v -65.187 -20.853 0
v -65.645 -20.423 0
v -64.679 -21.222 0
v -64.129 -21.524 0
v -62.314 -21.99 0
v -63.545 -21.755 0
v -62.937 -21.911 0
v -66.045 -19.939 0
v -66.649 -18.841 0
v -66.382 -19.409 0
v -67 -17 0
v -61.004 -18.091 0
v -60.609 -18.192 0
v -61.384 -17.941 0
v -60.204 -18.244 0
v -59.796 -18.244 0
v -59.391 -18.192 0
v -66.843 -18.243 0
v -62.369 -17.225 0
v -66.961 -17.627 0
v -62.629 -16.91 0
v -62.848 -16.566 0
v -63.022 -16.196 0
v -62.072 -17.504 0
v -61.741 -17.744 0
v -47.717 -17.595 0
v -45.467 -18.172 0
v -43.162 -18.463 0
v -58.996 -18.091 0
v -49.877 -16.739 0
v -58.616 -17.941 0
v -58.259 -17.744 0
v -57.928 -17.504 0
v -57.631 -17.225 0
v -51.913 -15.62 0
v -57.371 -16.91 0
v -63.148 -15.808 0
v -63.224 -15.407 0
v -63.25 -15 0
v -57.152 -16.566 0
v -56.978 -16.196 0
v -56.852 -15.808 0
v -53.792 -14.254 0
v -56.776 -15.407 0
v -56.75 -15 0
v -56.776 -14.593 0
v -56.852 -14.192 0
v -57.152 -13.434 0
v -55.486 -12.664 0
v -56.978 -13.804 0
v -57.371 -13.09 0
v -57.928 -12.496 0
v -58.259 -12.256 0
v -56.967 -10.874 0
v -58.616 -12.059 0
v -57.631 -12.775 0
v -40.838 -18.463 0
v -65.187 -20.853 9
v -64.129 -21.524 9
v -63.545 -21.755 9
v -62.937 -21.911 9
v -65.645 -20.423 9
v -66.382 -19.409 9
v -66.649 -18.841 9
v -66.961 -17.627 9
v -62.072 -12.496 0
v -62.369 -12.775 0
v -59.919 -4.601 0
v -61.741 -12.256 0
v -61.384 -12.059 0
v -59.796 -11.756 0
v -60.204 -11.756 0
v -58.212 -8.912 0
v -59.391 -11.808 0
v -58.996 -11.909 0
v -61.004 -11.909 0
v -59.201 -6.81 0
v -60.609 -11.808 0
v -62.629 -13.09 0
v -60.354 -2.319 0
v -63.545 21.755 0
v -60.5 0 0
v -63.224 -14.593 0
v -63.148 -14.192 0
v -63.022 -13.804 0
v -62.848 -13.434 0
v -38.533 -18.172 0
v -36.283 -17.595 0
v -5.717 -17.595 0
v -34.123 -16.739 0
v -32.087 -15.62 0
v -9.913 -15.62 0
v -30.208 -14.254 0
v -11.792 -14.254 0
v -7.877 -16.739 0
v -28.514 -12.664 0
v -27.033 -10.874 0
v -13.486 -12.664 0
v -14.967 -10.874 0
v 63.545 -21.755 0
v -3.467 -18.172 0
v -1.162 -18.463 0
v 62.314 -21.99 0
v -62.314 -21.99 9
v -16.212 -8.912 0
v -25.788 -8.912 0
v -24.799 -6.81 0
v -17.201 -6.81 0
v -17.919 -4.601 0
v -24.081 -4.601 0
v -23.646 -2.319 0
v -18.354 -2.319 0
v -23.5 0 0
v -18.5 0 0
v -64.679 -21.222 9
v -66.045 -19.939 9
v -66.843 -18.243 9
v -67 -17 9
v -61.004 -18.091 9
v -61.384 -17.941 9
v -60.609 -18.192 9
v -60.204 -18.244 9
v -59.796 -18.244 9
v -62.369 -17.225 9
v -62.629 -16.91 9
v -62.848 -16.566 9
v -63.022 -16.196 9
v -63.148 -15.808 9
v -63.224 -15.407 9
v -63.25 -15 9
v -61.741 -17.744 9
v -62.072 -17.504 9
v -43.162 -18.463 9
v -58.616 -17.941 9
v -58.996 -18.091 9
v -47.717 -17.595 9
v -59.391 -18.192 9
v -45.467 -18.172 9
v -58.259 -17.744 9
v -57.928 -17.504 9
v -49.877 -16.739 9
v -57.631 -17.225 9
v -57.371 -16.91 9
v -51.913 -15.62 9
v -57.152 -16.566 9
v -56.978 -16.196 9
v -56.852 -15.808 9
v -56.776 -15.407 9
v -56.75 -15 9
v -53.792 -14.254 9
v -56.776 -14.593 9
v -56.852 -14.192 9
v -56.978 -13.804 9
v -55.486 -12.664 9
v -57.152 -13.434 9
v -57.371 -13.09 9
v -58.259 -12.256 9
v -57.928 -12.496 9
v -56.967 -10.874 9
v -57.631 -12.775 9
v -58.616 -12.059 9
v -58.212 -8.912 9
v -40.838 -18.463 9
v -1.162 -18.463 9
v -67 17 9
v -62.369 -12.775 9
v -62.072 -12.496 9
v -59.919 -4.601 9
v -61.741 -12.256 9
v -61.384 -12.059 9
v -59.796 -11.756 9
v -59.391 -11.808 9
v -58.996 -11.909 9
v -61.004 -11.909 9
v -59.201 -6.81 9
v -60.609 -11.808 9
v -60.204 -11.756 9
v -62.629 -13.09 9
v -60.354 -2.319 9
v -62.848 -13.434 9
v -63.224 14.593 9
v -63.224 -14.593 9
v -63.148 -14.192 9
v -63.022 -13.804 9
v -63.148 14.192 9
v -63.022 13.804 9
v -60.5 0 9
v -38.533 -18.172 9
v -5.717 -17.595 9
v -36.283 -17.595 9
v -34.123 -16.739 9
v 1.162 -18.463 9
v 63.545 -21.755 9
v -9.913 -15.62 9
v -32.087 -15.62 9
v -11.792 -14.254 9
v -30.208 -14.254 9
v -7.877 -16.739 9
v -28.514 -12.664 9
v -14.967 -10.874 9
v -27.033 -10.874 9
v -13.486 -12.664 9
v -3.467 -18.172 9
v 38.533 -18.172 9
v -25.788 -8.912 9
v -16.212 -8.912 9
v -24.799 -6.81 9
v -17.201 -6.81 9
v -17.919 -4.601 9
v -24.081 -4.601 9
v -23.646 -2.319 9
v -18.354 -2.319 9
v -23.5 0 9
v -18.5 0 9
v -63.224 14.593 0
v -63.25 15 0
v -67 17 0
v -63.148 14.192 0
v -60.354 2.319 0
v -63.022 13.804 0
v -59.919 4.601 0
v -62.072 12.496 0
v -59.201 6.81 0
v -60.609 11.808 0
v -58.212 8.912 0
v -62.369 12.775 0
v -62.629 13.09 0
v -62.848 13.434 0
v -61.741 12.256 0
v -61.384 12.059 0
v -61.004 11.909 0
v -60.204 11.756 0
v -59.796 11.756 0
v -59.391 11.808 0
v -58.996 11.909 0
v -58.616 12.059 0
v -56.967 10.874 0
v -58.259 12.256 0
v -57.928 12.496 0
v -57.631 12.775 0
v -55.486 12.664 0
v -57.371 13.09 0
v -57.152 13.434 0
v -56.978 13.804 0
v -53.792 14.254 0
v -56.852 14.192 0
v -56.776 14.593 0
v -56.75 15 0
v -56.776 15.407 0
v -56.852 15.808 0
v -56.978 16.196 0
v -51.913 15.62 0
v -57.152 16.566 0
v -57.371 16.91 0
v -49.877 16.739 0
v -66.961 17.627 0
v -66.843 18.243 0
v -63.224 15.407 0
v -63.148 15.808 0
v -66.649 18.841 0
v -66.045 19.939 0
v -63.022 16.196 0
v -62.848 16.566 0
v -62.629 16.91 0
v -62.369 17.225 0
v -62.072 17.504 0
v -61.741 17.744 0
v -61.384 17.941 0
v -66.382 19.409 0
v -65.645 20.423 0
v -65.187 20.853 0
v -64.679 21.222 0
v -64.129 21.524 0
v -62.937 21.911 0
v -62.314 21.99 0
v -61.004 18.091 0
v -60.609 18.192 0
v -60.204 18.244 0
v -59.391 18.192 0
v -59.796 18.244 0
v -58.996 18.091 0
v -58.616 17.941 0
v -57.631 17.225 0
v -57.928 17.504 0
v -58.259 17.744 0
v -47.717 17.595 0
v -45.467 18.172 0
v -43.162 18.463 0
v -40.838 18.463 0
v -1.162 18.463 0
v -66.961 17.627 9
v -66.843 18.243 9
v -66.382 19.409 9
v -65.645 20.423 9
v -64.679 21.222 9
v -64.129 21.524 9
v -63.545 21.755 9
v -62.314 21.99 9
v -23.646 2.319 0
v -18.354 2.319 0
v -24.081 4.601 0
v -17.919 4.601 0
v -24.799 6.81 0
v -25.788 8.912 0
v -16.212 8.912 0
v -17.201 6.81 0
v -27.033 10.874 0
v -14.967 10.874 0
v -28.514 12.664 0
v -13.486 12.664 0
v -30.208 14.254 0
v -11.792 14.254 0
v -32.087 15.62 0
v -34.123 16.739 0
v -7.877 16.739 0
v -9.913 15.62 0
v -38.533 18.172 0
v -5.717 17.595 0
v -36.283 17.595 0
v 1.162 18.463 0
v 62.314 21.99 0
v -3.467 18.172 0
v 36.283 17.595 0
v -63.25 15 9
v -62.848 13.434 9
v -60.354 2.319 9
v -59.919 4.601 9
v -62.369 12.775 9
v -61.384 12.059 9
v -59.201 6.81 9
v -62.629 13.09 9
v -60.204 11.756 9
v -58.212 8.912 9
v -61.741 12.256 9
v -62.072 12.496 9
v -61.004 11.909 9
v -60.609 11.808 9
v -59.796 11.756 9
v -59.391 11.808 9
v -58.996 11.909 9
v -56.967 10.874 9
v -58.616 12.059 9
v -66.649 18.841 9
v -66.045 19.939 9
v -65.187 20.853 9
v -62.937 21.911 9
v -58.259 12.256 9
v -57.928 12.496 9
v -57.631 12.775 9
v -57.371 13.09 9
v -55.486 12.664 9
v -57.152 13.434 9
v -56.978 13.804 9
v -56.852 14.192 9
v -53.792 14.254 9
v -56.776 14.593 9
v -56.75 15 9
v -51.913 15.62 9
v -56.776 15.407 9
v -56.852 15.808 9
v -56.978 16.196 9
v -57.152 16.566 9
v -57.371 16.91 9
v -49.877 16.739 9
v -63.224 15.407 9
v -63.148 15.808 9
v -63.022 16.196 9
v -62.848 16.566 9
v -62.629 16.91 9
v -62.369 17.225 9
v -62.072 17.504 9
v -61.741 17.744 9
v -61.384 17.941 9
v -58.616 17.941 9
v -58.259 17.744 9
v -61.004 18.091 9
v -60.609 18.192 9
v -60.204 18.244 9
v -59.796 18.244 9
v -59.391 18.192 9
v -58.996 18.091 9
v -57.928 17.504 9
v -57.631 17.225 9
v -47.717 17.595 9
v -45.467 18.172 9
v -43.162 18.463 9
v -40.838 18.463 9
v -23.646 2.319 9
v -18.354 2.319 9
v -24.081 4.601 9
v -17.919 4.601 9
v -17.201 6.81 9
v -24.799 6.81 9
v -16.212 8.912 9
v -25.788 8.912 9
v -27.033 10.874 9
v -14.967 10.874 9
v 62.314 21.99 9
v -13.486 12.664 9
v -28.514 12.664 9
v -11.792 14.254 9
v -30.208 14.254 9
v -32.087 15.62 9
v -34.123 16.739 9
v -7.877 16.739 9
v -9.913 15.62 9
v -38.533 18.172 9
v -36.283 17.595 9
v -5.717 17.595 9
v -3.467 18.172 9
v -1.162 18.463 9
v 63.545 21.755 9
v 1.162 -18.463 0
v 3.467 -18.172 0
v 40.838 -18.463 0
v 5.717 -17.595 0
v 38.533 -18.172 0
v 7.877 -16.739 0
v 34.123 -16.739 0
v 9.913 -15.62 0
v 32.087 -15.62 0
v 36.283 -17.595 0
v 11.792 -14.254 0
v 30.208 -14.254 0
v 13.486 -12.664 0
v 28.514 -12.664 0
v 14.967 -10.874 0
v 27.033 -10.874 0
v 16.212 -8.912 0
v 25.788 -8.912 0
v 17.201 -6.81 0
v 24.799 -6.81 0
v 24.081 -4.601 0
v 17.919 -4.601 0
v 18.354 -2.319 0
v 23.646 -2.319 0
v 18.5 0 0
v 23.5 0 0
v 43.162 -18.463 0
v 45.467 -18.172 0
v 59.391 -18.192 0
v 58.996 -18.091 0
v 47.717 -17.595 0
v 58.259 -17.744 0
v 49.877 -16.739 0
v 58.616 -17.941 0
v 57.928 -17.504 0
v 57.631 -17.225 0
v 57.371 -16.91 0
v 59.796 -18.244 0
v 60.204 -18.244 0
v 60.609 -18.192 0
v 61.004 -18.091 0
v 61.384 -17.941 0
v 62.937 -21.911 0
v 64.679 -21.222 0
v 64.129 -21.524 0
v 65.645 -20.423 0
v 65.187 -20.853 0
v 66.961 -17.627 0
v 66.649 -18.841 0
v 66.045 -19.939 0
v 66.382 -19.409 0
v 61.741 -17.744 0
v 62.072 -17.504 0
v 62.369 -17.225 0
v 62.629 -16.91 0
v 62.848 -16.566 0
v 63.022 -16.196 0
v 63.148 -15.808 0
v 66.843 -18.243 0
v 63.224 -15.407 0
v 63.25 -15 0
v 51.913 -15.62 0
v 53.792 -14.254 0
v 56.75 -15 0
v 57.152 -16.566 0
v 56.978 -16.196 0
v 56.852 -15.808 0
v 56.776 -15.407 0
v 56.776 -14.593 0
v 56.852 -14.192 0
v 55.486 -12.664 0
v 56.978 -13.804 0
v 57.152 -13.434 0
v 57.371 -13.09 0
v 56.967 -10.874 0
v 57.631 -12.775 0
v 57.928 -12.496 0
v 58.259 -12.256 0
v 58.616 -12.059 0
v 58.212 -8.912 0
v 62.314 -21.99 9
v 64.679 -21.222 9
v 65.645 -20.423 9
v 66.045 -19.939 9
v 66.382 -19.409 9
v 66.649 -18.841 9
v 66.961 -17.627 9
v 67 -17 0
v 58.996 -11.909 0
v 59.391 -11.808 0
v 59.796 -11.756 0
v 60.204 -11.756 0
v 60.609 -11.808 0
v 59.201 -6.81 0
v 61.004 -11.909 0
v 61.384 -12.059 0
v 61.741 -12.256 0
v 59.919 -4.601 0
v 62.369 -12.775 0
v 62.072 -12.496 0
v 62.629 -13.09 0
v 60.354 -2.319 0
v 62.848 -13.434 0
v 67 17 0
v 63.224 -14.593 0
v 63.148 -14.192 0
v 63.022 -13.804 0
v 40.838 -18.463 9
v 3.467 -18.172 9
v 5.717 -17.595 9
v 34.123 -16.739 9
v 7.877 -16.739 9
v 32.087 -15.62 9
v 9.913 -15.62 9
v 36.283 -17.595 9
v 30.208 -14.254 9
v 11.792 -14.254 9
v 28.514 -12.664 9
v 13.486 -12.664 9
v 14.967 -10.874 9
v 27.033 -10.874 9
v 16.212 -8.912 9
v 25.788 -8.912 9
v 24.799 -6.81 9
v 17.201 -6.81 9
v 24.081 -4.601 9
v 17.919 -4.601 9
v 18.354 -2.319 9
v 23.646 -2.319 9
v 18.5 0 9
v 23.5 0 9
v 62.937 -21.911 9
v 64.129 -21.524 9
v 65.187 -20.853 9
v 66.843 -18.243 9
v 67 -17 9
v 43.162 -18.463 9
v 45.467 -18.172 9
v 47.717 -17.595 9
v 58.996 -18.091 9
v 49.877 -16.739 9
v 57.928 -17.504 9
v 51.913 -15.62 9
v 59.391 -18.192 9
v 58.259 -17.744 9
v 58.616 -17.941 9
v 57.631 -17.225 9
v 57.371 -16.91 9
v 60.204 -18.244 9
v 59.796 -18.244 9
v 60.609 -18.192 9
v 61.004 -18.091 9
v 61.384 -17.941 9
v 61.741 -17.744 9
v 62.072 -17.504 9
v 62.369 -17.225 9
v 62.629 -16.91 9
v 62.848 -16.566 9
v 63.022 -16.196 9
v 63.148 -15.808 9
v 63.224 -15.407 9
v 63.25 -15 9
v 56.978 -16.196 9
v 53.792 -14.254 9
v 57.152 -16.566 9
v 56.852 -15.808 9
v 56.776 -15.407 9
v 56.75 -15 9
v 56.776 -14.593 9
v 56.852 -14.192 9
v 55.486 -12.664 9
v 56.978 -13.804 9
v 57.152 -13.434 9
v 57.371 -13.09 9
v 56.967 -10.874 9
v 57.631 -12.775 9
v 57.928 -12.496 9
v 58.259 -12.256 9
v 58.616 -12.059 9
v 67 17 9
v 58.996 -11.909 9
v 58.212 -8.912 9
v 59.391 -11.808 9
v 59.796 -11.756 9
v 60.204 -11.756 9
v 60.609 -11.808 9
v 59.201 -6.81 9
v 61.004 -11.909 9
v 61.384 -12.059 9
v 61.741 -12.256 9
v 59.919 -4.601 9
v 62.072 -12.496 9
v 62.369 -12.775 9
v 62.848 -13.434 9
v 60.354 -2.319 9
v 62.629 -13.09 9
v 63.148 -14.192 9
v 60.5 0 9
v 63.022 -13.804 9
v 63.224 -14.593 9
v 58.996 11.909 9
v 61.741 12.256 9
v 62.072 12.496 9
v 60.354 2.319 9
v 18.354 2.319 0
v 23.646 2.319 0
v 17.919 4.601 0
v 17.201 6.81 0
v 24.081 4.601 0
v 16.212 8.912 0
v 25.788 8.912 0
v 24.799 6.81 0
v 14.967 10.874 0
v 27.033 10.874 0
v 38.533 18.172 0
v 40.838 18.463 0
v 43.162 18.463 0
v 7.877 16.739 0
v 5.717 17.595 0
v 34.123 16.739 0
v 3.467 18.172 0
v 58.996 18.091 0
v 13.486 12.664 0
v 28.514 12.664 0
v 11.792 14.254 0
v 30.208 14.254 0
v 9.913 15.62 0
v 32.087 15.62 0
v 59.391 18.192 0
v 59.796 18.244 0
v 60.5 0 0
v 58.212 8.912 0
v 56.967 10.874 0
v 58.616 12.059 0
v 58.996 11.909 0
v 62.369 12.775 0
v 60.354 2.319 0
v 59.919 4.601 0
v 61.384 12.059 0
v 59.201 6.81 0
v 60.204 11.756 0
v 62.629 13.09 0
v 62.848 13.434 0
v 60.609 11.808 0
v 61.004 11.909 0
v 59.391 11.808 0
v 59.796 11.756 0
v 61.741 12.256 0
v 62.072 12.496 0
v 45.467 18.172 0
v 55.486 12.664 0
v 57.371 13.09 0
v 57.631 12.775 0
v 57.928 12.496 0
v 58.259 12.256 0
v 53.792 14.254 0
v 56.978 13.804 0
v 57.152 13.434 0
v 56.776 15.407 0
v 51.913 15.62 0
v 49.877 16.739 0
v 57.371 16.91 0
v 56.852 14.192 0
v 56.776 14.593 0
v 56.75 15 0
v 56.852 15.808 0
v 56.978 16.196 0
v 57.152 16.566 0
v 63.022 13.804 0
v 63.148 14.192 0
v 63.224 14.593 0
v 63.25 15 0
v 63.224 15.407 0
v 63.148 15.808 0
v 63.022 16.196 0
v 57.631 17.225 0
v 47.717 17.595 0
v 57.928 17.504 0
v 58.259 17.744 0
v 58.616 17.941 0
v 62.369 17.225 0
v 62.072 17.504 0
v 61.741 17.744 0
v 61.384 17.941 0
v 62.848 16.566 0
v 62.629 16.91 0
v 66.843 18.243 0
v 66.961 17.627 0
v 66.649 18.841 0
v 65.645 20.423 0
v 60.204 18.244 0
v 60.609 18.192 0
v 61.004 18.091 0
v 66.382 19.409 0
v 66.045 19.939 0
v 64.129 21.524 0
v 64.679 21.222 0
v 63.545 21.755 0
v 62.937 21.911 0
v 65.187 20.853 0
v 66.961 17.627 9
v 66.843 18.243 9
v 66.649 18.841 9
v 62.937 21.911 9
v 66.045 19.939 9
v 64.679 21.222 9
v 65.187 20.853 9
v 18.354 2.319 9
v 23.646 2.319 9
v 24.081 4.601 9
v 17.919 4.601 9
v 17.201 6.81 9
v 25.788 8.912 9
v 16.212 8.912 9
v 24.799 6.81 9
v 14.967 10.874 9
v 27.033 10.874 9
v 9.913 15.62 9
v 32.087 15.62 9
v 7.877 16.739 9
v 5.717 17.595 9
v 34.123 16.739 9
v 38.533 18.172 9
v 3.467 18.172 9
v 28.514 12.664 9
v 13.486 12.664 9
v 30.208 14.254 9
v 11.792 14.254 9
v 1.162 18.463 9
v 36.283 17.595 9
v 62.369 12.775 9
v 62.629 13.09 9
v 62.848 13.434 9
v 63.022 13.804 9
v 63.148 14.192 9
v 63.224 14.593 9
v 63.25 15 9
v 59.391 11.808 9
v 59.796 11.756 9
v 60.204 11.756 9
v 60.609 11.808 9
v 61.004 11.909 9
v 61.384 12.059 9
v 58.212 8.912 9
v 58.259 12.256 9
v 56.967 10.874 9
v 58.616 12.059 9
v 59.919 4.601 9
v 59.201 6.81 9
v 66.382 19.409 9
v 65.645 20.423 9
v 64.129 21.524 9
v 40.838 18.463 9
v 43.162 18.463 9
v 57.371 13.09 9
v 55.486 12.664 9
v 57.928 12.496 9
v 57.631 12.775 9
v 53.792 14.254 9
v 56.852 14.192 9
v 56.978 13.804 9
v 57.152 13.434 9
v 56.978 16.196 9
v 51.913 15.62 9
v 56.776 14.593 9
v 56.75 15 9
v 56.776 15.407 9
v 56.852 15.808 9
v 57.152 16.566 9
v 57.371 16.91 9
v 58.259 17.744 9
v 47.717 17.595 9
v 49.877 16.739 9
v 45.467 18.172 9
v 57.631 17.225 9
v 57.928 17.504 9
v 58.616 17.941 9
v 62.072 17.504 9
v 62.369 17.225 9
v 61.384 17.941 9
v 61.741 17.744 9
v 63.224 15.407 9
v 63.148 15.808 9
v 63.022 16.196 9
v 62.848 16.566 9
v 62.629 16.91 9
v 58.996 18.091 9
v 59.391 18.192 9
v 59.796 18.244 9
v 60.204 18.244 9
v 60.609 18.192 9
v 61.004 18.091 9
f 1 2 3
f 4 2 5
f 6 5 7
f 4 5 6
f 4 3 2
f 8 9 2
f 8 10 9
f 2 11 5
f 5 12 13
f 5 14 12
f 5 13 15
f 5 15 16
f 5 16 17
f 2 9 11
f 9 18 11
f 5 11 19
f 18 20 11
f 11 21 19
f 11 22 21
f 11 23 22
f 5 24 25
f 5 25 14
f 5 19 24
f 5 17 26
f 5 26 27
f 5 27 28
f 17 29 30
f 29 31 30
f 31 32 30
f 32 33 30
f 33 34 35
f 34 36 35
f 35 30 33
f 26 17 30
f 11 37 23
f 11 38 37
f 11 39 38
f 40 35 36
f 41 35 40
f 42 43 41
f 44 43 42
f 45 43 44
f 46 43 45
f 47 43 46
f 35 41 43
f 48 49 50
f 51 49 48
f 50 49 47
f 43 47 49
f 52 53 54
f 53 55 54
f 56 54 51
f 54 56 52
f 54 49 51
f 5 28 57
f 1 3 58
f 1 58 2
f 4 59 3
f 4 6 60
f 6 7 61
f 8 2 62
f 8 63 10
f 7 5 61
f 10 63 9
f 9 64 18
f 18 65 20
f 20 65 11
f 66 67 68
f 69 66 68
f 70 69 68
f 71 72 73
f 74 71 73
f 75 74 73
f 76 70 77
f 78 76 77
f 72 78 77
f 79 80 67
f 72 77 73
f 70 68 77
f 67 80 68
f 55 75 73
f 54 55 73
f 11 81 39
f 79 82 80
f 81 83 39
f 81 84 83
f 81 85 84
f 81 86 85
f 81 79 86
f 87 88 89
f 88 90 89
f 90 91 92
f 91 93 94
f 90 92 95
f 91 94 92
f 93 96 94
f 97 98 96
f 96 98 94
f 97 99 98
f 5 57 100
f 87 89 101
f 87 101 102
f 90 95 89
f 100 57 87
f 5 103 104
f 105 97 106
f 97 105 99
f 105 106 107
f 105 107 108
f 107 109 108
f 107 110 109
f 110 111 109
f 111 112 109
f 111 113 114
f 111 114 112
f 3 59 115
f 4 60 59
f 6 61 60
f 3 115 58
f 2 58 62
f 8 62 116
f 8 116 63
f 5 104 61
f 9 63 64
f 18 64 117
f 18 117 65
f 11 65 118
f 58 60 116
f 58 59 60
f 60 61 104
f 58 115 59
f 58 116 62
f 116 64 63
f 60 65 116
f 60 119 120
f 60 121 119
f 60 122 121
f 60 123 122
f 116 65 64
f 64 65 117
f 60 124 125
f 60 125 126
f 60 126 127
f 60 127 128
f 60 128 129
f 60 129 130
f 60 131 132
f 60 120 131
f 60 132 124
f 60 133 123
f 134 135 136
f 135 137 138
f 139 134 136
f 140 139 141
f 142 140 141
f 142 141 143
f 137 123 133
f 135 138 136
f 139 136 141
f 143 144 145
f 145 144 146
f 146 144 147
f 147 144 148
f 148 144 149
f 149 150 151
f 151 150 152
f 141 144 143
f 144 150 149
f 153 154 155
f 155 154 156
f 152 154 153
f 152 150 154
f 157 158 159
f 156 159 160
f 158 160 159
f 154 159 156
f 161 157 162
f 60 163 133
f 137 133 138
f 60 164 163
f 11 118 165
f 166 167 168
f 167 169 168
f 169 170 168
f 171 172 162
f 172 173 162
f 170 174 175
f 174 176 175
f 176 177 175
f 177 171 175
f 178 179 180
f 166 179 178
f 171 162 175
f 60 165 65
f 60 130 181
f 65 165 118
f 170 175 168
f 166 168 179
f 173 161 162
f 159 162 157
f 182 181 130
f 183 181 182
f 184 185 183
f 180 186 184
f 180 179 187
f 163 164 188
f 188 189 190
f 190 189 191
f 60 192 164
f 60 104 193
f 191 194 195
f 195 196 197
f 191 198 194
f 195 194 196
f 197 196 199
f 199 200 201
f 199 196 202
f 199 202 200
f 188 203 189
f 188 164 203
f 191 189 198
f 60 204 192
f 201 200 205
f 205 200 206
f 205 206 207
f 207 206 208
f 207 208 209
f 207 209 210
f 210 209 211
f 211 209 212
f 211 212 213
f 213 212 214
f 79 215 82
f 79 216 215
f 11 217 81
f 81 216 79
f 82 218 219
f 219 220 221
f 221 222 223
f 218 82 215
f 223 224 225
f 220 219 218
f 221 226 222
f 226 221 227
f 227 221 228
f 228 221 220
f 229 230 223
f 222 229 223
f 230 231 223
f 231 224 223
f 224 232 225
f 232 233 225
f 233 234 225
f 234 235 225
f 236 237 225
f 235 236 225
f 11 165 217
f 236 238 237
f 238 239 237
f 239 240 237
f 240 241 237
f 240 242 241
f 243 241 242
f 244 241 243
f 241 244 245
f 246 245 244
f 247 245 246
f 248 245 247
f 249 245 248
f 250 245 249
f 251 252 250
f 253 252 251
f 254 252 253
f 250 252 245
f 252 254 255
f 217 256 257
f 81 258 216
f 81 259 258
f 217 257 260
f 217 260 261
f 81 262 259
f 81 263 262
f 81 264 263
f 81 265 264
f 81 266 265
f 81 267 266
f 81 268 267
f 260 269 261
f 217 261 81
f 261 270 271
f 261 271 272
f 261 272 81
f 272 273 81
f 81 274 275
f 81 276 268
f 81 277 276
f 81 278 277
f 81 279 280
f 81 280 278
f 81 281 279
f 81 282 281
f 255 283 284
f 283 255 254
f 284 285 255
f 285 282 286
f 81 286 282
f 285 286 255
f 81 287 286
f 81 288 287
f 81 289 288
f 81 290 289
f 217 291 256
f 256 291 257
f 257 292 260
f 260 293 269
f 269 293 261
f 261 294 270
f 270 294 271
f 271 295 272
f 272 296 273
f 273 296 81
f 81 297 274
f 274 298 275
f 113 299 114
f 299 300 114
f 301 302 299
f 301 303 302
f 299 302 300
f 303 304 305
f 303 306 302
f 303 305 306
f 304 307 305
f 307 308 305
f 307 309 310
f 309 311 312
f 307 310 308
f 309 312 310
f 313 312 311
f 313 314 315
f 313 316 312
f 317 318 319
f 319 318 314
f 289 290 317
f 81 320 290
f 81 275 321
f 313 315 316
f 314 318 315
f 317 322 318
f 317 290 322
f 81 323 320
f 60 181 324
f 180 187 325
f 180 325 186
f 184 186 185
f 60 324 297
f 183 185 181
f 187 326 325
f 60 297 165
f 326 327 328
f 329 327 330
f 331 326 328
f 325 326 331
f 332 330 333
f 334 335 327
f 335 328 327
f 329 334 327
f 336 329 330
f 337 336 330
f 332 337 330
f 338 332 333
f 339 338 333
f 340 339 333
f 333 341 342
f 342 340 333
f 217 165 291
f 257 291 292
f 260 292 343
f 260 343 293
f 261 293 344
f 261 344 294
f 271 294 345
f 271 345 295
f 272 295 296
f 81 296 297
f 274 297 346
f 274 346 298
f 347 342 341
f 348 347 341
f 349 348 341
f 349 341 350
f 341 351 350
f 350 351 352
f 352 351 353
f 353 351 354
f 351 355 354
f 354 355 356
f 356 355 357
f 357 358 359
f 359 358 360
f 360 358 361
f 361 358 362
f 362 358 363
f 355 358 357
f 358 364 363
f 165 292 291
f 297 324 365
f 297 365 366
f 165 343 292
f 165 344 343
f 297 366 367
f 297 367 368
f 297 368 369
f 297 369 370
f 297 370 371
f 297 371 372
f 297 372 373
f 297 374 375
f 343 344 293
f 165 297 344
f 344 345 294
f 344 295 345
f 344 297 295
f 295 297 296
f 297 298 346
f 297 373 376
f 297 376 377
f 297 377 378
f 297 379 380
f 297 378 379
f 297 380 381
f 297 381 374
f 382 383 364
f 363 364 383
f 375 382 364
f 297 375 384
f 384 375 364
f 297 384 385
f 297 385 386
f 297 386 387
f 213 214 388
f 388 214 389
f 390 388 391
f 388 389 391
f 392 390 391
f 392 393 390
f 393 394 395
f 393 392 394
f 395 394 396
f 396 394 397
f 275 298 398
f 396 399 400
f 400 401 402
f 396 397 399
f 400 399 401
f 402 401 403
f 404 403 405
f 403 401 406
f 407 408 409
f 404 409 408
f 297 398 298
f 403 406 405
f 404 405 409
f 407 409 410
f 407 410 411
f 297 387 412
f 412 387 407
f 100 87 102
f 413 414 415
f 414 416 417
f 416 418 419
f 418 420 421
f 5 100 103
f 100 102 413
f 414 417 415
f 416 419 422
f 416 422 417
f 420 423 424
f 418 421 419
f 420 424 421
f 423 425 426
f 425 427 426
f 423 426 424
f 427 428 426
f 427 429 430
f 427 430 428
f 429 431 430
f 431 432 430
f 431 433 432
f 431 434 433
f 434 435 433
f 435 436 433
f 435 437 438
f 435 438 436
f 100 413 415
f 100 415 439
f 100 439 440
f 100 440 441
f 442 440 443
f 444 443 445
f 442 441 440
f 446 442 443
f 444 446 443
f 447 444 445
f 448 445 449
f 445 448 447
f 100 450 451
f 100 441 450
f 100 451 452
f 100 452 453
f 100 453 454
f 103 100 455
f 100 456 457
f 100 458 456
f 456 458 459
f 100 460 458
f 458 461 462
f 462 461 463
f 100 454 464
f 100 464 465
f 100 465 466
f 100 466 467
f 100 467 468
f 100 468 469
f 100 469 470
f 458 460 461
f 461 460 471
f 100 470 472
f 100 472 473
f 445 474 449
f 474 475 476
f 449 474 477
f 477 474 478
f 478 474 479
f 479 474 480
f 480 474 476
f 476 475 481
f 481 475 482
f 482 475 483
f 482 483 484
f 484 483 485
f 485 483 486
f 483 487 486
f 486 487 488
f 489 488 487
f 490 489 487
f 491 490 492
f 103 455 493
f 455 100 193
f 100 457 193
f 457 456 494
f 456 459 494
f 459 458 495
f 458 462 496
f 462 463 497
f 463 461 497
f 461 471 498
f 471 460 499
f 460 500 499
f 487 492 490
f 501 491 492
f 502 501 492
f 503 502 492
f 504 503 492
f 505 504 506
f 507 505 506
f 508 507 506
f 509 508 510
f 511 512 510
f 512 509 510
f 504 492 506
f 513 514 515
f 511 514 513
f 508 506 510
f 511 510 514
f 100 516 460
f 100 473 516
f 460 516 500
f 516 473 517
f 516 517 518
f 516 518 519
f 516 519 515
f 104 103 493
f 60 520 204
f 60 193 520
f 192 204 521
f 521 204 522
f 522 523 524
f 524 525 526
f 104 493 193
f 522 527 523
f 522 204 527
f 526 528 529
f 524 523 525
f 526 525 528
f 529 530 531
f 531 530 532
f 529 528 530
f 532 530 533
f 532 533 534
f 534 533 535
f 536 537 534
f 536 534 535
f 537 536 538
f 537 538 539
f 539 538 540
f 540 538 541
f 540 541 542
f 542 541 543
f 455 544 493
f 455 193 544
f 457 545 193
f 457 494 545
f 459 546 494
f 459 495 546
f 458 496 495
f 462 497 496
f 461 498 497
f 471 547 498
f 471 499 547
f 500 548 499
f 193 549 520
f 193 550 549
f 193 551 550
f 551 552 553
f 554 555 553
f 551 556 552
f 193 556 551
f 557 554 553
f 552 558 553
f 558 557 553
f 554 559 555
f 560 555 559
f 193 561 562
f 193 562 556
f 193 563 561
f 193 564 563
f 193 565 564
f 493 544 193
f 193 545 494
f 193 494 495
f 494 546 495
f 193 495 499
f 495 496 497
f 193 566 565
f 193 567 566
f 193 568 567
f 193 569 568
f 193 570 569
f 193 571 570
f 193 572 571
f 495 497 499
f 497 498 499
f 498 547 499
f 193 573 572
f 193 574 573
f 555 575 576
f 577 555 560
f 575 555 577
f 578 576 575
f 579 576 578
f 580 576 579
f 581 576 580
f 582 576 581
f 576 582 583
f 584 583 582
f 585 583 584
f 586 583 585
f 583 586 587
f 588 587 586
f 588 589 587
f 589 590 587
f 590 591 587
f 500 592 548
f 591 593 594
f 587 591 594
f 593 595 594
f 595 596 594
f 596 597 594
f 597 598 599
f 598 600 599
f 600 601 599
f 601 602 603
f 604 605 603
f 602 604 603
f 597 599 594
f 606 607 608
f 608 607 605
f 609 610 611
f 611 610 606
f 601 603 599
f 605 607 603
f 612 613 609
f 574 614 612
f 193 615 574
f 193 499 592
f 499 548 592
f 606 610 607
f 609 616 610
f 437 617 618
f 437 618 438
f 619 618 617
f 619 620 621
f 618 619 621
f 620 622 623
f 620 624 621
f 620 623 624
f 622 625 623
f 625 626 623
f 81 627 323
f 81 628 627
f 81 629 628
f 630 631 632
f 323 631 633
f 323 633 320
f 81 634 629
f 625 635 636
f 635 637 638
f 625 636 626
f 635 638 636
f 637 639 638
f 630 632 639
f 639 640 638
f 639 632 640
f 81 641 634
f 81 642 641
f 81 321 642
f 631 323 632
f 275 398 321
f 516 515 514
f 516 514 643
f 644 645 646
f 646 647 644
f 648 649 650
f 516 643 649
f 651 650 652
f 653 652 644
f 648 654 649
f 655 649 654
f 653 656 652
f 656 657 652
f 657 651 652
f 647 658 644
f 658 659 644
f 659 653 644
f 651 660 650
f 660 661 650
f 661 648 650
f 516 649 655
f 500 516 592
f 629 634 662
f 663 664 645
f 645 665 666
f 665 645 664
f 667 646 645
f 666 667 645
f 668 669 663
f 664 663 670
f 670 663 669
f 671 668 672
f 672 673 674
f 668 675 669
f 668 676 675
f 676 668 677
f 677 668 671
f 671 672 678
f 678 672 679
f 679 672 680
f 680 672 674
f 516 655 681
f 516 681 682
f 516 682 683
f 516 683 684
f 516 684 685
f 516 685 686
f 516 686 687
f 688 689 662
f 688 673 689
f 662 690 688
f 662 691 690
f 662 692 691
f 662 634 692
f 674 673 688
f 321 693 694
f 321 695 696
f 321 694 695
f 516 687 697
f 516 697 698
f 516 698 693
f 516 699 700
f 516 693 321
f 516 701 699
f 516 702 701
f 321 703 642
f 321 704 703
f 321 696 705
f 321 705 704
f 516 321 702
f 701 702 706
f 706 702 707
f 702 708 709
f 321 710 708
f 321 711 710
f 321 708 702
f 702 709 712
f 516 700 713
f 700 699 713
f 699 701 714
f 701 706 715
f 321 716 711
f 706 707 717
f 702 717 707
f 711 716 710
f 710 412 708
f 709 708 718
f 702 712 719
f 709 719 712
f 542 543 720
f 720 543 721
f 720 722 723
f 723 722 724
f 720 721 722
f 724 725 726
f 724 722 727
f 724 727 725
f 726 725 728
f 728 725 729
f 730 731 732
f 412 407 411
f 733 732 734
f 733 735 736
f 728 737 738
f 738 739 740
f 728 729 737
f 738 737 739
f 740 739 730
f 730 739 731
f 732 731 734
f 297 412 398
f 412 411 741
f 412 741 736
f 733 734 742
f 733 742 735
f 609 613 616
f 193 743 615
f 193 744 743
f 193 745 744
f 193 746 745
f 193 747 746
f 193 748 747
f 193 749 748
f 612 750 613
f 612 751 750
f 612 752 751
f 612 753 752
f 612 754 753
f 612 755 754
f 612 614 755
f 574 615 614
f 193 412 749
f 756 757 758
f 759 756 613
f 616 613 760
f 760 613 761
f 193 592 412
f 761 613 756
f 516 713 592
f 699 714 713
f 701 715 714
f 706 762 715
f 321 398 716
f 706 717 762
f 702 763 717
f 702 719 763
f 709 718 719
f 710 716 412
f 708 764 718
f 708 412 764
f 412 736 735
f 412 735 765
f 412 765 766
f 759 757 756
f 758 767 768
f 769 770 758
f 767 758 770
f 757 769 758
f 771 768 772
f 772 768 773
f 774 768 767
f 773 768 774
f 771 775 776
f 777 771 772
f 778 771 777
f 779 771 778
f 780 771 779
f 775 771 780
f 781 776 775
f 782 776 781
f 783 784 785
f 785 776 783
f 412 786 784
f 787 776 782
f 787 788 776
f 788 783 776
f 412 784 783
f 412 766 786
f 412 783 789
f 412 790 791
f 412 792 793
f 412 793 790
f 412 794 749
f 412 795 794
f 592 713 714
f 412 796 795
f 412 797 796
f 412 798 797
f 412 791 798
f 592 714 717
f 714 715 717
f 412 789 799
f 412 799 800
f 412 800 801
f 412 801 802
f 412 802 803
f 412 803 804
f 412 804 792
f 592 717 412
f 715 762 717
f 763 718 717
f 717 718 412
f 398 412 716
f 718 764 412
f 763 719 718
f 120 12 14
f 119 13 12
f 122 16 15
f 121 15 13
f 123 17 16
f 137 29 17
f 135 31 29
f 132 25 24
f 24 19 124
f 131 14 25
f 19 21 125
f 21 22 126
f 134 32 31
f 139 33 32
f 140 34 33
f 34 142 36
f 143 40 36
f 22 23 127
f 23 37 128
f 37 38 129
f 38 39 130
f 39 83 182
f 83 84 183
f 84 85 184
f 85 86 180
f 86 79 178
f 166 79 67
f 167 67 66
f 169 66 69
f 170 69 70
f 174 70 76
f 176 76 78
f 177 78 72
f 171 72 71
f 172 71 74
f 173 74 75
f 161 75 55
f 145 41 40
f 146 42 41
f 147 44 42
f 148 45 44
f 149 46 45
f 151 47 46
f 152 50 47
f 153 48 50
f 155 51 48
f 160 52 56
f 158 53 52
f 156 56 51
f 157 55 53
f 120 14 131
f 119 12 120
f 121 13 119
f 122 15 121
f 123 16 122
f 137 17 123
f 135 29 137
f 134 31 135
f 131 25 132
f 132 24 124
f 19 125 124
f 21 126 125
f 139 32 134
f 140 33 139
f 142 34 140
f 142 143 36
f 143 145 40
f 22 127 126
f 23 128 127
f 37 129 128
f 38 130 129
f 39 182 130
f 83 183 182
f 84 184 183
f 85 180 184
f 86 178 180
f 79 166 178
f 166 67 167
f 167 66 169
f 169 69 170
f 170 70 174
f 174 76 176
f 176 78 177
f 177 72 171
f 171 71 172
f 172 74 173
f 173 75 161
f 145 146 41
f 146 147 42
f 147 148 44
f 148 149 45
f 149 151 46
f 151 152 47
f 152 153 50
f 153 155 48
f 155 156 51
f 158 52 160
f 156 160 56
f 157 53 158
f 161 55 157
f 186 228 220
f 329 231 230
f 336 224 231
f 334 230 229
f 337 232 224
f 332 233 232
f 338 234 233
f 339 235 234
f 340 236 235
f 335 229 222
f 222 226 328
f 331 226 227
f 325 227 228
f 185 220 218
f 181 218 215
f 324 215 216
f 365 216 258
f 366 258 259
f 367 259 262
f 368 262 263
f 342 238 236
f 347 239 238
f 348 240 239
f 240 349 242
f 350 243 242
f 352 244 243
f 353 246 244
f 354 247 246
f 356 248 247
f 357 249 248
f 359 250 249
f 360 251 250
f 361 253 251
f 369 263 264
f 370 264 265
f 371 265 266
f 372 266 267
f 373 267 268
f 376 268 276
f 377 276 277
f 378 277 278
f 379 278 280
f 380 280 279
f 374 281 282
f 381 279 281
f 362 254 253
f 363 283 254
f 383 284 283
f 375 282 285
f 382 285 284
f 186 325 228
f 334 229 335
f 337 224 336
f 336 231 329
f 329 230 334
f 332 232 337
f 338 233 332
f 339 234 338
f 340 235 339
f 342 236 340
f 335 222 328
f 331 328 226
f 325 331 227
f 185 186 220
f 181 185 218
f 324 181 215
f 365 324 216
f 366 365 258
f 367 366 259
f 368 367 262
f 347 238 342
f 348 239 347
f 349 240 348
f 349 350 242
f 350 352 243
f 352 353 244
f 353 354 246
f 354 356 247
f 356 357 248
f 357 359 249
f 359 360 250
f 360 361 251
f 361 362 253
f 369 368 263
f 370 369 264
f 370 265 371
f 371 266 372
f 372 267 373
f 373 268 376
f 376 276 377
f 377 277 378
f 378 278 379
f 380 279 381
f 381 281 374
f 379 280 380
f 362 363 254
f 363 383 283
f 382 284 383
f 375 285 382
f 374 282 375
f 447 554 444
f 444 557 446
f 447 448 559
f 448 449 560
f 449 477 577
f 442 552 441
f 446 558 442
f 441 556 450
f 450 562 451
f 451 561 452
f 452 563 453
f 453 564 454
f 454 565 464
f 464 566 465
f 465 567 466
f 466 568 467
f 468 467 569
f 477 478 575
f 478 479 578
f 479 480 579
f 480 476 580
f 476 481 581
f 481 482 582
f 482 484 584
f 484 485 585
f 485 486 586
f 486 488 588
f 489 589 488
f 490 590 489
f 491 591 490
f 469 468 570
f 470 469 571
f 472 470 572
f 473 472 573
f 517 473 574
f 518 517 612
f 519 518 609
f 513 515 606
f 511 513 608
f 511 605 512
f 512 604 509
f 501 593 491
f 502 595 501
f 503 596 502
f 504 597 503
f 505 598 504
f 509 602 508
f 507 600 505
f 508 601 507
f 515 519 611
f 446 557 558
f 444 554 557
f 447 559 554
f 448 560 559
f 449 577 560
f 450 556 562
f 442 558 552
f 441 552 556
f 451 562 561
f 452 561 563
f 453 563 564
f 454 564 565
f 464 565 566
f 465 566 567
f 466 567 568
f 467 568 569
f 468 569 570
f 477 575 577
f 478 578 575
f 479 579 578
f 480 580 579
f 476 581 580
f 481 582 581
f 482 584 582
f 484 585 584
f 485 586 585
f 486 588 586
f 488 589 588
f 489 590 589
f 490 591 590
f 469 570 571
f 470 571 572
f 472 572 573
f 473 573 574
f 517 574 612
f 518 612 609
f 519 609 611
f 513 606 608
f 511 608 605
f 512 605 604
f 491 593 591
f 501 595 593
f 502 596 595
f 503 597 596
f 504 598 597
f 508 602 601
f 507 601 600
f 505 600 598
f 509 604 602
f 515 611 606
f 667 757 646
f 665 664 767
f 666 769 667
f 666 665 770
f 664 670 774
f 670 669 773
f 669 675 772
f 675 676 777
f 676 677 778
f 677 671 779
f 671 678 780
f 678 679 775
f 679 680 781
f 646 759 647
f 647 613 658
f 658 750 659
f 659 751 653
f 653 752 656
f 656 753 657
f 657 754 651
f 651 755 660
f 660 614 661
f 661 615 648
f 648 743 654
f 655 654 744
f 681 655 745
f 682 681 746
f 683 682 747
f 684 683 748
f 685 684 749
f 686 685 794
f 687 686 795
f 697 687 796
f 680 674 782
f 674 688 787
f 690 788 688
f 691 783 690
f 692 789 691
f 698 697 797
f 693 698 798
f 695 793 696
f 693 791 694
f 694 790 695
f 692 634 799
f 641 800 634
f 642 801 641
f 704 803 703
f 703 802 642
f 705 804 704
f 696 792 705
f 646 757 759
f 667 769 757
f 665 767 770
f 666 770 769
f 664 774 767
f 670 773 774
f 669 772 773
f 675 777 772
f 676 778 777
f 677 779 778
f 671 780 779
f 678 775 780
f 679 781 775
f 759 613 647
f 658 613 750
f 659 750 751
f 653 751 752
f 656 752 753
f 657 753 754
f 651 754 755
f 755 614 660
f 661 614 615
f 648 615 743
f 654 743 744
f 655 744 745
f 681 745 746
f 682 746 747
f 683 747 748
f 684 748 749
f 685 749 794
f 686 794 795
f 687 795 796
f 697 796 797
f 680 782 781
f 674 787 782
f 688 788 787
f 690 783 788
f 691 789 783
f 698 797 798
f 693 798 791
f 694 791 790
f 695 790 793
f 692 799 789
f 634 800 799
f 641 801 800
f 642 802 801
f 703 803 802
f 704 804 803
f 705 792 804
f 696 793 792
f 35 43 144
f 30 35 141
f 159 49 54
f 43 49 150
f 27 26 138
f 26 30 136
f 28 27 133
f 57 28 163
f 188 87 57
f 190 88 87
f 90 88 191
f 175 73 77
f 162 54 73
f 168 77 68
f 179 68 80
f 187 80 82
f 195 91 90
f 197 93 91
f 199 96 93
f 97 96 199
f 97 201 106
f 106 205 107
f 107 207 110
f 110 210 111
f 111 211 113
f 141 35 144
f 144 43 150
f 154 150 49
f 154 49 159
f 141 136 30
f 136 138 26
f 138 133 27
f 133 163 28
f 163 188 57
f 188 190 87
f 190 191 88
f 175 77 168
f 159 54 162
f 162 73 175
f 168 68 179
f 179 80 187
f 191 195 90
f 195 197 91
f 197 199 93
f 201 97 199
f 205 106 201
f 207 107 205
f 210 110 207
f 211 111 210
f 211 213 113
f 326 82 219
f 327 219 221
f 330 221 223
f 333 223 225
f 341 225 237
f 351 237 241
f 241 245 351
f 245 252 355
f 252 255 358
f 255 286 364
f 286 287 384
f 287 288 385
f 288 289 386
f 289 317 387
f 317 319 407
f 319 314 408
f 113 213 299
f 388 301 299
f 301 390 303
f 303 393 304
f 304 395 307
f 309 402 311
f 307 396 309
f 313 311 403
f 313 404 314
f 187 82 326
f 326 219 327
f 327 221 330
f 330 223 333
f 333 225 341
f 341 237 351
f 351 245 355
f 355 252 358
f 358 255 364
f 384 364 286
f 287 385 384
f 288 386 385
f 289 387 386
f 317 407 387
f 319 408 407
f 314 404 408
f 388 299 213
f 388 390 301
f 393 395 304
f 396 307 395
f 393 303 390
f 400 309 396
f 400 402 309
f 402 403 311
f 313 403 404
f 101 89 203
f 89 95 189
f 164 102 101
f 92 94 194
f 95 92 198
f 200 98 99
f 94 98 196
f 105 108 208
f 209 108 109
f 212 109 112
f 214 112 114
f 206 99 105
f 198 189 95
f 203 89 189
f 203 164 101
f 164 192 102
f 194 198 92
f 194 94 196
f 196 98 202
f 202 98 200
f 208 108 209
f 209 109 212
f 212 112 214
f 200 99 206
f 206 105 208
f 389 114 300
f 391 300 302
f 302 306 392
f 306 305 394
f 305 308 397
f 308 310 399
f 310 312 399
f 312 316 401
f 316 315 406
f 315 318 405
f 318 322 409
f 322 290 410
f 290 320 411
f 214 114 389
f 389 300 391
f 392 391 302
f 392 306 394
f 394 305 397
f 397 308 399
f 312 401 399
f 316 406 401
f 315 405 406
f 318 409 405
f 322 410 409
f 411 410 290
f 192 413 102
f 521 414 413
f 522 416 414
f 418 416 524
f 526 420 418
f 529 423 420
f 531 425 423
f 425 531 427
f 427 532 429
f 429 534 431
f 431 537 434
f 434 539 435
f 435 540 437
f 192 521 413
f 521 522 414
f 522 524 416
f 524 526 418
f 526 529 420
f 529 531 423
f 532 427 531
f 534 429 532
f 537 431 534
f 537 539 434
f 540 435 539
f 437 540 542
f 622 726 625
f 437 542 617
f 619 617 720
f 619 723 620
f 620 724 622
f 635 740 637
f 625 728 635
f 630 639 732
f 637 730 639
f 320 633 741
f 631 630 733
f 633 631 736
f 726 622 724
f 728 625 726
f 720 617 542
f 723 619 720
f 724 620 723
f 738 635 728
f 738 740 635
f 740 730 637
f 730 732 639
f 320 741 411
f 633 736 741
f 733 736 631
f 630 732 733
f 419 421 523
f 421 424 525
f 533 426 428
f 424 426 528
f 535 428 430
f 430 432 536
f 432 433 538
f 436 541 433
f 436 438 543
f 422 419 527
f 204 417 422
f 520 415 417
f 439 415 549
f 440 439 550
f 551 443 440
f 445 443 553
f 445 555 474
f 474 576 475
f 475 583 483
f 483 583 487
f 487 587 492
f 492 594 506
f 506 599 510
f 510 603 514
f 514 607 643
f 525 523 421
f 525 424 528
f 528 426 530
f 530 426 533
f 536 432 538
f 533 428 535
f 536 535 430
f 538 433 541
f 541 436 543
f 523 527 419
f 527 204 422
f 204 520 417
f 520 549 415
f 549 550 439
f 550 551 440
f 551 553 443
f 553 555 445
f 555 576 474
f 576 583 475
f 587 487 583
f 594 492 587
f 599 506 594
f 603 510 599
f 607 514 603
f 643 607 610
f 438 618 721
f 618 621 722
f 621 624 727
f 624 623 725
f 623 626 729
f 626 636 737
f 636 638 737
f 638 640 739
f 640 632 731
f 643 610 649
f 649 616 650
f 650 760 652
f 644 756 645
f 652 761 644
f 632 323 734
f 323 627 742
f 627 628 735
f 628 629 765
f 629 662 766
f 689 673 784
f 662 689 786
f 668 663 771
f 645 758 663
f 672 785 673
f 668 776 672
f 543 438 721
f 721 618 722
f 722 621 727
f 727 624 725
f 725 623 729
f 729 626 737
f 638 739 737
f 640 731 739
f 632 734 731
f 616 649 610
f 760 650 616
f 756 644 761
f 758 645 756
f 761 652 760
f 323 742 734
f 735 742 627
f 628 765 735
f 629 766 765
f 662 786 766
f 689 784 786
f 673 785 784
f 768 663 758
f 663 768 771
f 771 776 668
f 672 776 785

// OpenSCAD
$fn = 50;

difference() {
	union() {
		hull() {
			translate(v = [-62.0, 17.0, 0]) {
				cylinder(h = 9, r = 5);
			}
			translate(v = [62.0, 17.0, 0]) {
				cylinder(h = 9, r = 5);
			}
			translate(v = [-62.0, -17.0, 0]) {
				cylinder(h = 9, r = 5);
			}
			translate(v = [62.0, -17.0, 0]) {
				cylinder(h = 9, r = 5);
			}
		}
	}
	union() {
		translate(v = [-60.0, -15.0, -100.0]) {
			cylinder(h = 200, r = 3.25);
		}
		translate(v = [-60.0, 15.0, -100.0]) {
			cylinder(h = 200, r = 3.25);
		}
		translate(v = [60.0, -15.0, -100.0]) {
			cylinder(h = 200, r = 3.25);
		}
		translate(v = [60.0, 15.0, -100.0]) {
			cylinder(h = 200, r = 3.25);
		}
		translate(v = [-60.0, -15.0, -100.0]) {
			cylinder(h = 200, r = 1.8);
		}
		translate(v = [-60.0, 15.0, -100.0]) {
			cylinder(h = 200, r = 1.8);
		}
		translate(v = [60.0, -15.0, -100.0]) {
			cylinder(h = 200, r = 1.8);
		}
		translate(v = [60.0, 15.0, -100.0]) {
			cylinder(h = 200, r = 1.8);
		}
		translate(v = [-42.0, 0, 0.0]) {
			cylinder(h = 9, r = 18.5);
		}
		cylinder(h = 9, r = 18.5);
		translate(v = [42.0, 0, 0.0]) {
			cylinder(h = 9, r = 18.5);
		}
	}
}
